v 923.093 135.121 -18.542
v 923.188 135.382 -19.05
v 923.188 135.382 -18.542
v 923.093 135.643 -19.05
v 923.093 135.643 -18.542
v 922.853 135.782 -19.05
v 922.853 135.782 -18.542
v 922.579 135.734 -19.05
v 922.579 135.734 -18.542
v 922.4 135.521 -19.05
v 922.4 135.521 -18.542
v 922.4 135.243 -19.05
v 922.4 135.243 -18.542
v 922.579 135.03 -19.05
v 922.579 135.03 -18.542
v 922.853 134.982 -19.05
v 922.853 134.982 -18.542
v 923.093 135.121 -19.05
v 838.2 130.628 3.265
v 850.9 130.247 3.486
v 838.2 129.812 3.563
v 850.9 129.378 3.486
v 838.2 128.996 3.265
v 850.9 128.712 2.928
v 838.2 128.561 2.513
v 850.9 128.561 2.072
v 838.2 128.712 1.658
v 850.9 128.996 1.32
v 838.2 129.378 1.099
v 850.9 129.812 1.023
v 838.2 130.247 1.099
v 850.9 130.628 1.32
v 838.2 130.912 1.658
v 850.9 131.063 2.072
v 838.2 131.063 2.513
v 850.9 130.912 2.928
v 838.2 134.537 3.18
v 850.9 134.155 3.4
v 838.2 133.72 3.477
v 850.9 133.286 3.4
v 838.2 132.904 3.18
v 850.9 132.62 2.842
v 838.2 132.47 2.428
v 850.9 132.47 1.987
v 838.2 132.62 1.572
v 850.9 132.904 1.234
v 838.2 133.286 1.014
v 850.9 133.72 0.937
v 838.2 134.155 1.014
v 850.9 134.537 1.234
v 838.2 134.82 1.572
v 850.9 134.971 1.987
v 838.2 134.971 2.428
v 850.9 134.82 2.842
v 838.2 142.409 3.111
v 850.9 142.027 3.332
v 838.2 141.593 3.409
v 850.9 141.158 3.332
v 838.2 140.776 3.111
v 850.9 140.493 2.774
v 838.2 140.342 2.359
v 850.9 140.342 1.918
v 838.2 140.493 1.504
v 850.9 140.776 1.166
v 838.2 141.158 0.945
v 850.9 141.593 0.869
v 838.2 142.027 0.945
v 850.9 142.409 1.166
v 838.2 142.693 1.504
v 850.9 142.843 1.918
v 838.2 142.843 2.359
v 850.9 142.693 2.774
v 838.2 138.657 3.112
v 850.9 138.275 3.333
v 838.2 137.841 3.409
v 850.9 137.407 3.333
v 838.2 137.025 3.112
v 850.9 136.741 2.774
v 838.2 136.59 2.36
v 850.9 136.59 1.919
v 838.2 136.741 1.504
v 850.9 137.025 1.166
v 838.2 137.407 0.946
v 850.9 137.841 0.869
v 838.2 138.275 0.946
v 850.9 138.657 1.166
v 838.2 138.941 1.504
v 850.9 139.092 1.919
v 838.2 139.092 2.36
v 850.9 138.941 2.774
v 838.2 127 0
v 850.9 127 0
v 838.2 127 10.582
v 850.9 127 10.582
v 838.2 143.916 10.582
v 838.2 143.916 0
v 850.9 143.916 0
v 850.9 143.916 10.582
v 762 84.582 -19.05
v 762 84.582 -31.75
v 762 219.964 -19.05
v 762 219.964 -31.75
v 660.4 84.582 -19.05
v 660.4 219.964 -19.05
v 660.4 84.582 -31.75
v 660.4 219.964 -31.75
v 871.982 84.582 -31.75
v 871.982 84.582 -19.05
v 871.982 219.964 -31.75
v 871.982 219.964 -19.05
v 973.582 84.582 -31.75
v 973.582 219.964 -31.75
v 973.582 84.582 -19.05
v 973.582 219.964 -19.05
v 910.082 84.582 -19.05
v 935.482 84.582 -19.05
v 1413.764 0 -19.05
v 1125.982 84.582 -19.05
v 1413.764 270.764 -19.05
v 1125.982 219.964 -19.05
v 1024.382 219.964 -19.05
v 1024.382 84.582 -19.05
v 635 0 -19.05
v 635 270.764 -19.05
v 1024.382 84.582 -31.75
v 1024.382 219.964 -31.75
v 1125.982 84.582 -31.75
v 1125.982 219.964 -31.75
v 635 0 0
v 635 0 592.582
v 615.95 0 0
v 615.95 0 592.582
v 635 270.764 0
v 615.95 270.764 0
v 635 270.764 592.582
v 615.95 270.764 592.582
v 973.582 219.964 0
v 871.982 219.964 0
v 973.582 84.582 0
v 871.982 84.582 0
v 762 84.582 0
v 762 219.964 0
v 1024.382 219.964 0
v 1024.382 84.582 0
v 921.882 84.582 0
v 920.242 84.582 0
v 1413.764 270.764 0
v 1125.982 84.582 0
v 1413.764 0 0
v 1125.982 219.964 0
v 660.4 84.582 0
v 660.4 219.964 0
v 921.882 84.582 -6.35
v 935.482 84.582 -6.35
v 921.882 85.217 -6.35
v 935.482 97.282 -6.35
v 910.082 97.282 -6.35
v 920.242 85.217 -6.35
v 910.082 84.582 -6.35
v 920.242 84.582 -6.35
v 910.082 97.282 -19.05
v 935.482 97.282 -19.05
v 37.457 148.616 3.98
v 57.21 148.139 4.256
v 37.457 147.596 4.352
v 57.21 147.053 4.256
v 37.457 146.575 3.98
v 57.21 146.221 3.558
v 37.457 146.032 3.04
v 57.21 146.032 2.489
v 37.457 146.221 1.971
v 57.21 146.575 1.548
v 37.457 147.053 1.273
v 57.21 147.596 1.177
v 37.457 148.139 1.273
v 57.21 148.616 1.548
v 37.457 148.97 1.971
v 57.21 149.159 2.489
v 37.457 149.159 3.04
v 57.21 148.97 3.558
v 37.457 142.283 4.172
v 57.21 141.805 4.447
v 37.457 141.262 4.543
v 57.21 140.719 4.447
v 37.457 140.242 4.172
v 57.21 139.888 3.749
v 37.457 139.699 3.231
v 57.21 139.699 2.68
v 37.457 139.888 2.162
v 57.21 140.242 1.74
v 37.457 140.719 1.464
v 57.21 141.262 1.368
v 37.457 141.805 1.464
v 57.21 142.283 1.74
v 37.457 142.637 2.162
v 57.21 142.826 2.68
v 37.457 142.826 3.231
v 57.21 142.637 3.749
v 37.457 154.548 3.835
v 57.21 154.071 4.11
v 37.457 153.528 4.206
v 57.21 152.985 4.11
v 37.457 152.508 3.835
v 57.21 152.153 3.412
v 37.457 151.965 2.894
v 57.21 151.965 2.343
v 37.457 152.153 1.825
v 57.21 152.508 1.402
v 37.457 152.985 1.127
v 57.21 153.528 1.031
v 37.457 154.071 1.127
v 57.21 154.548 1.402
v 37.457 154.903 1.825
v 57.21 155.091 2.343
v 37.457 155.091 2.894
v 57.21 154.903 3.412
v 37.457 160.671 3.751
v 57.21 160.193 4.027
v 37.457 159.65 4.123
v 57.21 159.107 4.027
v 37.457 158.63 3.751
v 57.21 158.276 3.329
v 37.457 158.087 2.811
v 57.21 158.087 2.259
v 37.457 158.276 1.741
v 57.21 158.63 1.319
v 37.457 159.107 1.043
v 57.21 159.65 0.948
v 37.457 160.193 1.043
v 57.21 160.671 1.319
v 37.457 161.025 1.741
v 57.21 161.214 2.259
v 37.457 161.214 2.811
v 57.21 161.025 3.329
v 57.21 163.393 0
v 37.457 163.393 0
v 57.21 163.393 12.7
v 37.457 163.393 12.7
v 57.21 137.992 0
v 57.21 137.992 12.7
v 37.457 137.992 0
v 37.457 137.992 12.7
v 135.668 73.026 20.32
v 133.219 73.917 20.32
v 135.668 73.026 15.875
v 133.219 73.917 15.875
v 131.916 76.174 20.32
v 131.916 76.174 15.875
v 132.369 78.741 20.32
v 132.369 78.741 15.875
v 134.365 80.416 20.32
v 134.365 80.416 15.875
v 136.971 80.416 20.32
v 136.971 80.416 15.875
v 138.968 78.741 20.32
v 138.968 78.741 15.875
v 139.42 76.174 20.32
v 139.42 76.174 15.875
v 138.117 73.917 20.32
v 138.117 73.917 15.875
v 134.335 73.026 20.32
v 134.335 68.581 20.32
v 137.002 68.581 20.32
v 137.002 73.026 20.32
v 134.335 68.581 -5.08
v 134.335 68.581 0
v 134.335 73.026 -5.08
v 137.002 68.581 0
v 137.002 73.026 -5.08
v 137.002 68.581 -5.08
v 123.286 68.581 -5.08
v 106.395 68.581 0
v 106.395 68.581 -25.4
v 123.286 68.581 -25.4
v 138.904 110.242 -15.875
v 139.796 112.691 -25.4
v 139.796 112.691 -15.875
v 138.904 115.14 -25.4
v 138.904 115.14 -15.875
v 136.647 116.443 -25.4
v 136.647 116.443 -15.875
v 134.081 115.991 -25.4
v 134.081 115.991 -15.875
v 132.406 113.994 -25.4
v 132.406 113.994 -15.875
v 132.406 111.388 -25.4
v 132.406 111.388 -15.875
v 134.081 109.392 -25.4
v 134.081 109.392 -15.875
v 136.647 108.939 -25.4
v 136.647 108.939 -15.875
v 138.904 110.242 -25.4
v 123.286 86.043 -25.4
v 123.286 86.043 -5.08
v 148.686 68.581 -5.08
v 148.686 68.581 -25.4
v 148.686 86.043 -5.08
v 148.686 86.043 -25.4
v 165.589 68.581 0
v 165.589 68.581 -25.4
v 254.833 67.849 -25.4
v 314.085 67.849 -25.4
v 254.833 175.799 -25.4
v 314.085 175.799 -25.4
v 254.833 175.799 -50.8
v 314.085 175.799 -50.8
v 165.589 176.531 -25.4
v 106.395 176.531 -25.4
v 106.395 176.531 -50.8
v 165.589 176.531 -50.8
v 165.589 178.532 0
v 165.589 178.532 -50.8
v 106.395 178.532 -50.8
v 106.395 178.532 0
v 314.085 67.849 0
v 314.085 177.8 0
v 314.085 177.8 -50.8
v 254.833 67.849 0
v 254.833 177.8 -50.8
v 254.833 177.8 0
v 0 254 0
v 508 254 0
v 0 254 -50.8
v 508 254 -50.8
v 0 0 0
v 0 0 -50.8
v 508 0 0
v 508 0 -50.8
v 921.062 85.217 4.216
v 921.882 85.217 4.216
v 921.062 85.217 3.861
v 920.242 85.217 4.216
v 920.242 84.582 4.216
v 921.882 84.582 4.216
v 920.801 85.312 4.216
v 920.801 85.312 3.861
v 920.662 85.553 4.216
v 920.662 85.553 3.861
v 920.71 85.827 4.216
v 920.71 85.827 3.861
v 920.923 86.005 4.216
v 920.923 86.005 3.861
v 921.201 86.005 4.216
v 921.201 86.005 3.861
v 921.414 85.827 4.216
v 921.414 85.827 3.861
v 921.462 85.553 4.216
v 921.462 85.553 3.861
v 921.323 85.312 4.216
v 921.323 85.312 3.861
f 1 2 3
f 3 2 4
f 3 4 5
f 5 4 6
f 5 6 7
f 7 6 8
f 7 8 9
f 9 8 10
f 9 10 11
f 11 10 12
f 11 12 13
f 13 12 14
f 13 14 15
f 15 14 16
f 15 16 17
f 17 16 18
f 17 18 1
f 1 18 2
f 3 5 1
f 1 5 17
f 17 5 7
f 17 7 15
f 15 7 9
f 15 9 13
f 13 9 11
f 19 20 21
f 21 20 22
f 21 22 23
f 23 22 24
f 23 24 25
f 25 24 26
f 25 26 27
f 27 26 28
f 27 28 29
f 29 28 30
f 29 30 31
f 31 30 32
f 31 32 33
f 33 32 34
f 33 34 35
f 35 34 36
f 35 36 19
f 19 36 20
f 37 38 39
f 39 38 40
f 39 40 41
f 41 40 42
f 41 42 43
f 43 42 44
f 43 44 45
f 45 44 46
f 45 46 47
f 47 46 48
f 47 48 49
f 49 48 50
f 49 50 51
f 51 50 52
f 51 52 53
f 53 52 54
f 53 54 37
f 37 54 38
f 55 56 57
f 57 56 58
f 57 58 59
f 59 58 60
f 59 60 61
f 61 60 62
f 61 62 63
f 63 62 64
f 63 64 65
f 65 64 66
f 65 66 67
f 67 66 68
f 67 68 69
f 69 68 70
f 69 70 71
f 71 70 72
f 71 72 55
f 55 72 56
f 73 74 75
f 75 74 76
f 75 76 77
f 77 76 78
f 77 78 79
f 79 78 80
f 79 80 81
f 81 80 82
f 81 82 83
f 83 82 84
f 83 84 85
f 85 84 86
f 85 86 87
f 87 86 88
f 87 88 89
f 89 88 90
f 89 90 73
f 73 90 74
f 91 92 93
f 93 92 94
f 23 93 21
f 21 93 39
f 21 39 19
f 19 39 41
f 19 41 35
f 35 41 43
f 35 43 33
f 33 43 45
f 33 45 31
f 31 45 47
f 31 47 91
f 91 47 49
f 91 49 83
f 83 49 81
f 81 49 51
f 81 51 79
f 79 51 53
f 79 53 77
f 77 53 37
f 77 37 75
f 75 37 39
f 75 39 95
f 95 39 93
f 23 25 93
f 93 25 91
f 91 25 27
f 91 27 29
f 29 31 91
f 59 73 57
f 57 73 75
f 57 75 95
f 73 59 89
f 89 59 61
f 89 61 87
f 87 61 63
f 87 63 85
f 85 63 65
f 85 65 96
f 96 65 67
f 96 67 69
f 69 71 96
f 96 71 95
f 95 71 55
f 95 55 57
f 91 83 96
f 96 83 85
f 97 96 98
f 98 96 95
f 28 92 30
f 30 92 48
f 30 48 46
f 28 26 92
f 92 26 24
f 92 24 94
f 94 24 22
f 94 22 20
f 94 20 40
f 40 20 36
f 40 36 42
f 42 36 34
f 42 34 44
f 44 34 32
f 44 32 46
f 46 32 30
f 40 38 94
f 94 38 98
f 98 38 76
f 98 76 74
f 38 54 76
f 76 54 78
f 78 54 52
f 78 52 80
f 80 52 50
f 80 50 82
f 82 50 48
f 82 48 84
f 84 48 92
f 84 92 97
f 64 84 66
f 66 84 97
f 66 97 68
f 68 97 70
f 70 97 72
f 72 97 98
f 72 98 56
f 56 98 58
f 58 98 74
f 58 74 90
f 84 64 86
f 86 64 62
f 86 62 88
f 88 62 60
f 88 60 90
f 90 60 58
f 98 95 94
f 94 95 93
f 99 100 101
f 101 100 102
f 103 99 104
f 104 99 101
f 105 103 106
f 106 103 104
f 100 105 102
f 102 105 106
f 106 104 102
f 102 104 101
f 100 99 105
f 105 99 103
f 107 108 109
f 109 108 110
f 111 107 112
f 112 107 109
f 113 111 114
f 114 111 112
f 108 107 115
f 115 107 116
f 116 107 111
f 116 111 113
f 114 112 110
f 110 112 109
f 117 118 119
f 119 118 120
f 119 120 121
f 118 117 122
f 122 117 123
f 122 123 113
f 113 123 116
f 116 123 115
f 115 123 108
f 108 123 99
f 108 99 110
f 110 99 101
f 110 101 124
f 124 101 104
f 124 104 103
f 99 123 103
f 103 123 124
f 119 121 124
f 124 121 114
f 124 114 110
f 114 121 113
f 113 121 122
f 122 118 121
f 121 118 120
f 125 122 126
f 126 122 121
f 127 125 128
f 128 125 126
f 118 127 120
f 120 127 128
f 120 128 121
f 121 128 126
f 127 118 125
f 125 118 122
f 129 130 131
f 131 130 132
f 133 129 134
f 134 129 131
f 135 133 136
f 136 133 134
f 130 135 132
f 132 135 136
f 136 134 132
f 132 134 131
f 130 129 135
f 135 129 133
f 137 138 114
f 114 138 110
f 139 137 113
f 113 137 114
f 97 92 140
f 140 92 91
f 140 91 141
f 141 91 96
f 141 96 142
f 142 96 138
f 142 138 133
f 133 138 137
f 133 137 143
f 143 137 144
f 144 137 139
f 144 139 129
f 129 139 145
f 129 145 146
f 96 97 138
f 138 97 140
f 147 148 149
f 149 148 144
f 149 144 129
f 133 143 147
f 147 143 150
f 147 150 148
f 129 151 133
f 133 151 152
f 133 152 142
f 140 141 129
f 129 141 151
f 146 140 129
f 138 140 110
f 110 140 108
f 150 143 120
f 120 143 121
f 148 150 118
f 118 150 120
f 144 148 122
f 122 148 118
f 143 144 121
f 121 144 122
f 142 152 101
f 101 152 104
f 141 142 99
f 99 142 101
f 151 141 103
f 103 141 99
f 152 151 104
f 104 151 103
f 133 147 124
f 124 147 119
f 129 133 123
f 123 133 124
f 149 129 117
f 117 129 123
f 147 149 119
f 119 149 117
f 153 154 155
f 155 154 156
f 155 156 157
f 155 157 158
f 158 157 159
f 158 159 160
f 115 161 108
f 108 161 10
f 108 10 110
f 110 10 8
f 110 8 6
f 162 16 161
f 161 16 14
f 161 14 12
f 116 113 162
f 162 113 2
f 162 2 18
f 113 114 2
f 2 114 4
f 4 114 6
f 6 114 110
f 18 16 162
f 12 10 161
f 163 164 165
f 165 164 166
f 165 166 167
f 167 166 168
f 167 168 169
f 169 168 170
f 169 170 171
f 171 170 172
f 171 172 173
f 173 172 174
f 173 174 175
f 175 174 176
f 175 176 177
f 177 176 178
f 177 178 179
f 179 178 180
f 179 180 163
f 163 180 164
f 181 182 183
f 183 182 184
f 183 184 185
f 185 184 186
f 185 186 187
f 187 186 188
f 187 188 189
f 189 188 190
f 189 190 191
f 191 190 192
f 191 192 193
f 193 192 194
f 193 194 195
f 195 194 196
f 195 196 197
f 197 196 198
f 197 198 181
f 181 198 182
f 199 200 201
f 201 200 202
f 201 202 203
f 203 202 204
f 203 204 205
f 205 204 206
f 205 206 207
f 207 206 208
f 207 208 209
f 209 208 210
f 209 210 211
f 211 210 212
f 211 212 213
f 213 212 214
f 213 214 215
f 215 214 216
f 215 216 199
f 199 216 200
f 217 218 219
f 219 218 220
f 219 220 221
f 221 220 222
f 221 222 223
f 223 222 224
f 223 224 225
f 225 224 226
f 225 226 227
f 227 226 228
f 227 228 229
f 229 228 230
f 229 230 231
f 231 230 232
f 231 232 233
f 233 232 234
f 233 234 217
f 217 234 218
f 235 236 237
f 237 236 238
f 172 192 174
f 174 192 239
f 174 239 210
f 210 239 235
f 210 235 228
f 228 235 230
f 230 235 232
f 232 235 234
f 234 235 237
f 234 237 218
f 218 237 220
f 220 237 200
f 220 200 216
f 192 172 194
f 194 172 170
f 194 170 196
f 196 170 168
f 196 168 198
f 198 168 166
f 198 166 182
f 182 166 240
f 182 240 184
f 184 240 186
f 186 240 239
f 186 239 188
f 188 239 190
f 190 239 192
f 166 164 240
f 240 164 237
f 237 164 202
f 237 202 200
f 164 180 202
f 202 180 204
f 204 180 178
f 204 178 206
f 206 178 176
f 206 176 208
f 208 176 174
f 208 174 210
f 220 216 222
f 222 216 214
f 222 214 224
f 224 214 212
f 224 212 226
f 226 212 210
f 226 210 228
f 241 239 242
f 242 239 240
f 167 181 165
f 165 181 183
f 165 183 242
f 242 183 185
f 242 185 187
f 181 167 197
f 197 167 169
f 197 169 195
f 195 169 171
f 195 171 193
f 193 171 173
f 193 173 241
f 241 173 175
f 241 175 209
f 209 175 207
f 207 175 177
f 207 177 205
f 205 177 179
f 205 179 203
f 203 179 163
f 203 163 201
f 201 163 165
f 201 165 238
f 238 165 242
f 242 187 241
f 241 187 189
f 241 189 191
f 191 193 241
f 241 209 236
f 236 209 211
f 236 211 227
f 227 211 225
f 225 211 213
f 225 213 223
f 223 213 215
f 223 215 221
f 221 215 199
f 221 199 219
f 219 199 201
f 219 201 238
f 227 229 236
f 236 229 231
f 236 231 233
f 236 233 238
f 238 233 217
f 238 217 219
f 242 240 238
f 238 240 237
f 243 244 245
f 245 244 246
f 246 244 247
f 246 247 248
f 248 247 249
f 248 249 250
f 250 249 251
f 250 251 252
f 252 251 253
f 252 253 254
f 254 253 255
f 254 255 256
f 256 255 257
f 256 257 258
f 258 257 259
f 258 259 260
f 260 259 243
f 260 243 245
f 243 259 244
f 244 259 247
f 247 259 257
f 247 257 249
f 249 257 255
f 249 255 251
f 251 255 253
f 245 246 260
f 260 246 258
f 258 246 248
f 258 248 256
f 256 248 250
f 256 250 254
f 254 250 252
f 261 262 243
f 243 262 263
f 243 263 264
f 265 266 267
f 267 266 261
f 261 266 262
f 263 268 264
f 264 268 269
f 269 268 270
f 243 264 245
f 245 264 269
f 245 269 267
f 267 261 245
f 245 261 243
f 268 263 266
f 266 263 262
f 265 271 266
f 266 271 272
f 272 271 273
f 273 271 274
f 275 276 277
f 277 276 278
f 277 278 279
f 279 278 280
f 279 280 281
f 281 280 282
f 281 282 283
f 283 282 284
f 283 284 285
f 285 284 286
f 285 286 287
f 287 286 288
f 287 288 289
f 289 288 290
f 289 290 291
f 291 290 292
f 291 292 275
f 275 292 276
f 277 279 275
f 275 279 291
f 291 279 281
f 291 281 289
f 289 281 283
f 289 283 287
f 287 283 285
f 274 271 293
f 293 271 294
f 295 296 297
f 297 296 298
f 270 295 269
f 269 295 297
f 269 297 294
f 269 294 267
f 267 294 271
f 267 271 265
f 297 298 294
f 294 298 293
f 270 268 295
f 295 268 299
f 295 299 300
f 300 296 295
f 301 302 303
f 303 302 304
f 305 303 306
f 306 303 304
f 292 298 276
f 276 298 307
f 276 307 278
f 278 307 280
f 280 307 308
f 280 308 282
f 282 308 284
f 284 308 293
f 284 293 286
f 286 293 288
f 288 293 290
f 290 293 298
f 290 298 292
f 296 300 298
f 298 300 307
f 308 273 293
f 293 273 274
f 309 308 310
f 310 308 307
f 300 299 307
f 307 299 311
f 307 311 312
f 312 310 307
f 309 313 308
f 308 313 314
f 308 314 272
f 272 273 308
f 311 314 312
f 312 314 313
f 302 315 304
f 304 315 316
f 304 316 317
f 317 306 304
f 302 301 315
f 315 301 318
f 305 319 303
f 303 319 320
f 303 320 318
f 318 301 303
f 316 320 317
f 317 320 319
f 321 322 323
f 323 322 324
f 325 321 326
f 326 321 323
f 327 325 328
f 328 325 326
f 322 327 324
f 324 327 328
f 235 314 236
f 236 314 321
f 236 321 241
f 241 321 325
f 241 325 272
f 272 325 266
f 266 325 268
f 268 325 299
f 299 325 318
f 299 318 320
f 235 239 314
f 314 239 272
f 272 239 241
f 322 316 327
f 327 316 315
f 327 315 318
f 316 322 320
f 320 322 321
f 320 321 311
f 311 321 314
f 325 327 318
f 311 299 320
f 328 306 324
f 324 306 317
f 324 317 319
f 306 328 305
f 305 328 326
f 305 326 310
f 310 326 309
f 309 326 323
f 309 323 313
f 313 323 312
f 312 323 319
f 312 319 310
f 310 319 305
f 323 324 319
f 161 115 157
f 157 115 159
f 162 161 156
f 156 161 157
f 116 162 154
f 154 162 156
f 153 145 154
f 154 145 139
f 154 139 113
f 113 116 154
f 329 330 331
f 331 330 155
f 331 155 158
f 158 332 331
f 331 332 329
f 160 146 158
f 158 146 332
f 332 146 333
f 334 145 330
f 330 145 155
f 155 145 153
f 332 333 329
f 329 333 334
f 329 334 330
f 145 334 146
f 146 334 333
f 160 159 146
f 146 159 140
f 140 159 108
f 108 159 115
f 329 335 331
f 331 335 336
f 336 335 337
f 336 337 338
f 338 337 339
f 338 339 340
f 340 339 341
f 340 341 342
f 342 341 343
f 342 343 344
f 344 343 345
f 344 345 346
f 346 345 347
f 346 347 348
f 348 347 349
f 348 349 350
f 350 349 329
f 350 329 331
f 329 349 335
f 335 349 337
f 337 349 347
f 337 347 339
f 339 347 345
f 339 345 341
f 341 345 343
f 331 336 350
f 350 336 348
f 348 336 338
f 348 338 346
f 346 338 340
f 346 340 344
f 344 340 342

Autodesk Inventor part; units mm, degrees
ref_plane "YZ Plane" through (0, 0, 0) normal (1, 0, 0) x (0, 1, 0)
ref_plane "XZ Plane" through (0, 0, 0) normal (0, 1, 0) x (-1, 0, 0)
ref_plane "XY Plane" through (0, 0, 0) normal (0, 0, 1) x (1, 0, 0)
sketch "Sketch5" plane through (0, 0, 0) normal (0, 0, 1) x (1, 0, 0)
  line L0 (0, 0) -> (508, 0)
  line L1 (508, 0) -> (508, 254)
  line L2 (508, 254) -> (0, 254)
  line L3 (0, 254) -> (0, 0)
  line L4 (106.3948, 178.5315) -> (165.5889, 178.5315)
  line L5 (165.5889, 178.5315) -> (165.5889, 68.5809)
  line L6 (165.5889, 68.5809) -> (106.3948, 68.5809)
  line L7 (106.3948, 68.5809) -> (106.3948, 178.5315)
  line L8 (254.8332, 177.8) -> (314.0855, 177.8)
  line L9 (314.0855, 177.8) -> (314.0855, 67.8493)
  line L10 (314.0855, 67.8493) -> (254.8332, 67.8493)
  line L11 (254.8332, 67.8493) -> (254.8332, 177.8)
  dimension "d14" = 508
  dimension "d15" = 254
extrude "Extrusion4" add sketch "Sketch5" against normal blind 50.8
sketch "Sketch8" plane through (106.3948, 68.5809, 0) normal (0, 1, 0) x (1, 0, 0)
  line L0 (0, 0) -> (0, 50.8) projected
  line L1 (0, 25.4) -> (59.1942, 25.4)
  line L2 (59.1942, 25.4) -> (59.1942, 50.8)
  line L3 (59.1942, 50.8) -> (0, 50.8)
  line L4 (0, 50.8) -> (0, 25.4)
  point P0 (-106.3948, 0)
extrude "Extrusion6" add sketch "Sketch8" along normal blind 107.95
sketch "Sketch9" plane through (254.8332, 67.8493, 0) normal (0, 1, 0) x (1, 0, 0)
  line L0 (0, 0) -> (0, 50.8) projected
  line L1 (0, 25.4) -> (59.2523, 25.4)
  line L2 (59.2523, 25.4) -> (59.2523, 50.8)
  line L3 (59.2523, 50.8) -> (0, 50.8)
  line L4 (0, 50.8) -> (0, 25.4)
  point P0 (-254.8332, 0)
extrude "Extrusion7" add sketch "Sketch9" along normal blind 107.95
sketch "Sketch10" plane through (106.3948, 68.5809, 0) normal (0, 1, 0) x (1, 0, 0)
  line L0 (16.891, 25.4) -> (42.291, 25.4)
  line L1 (42.291, 25.4) -> (42.291, 5.08)
  line L2 (42.291, 5.08) -> (16.891, 5.08)
  line L3 (16.891, 5.08) -> (16.891, 25.4)
  point P0 (-106.3948, 0)
  dimension "d35" = 25.4
  dimension "d36" = 20.32
extrude "Extrusion8" add sketch "Sketch10" along normal blind 17.4625
sketch "Sketch11" plane through (106.3948, 176.5309, -25.4) normal (0, 0, 1) x (1, 0, 0)
  circle A0 centre (29.591, -63.8397) radius 3.81
  point P0 (-106.3948, -176.5309)
  dimension "d40" = 7.62
extrude "Extrusion9" add sketch "Sketch11" along normal blind 9.525
sketch "Sketch12" plane through (106.3948, 68.5809, 0) normal (0, 1, 0) x (1, 0, 0)
  line L0 (42.291, 5.08) -> (16.891, 5.08) projected
  line L1 (27.94, 5.08) -> (30.607, 5.08)
  line L2 (30.607, 5.08) -> (30.607, -20.32)
  line L3 (30.607, -20.32) -> (27.94, -20.32)
  line L4 (27.94, -20.32) -> (27.94, 5.08)
  point P0 (-106.3948, 0)
  dimension "d43" = 2.667
  dimension "d44" = 25.4
extrude "Extrusion10" add sketch "Sketch12" along normal blind 4.445
sketch "Sketch13" plane through (134.3348, 68.5809, 20.32) normal (0, 0, 1) x (1, 0, 0)
  circle A0 centre (1.3335, 8.255) radius 3.81
  point P0 (-134.3348, -68.5809)
  dimension "d47" = 7.62
extrude "Extrusion11" add sketch "Sketch13" against normal blind 4.445
sketch "Sketch16" plane through (106.3948, 176.5309, -25.4) normal (0, 0, 1) x (1, 0, 0)
  line L0 (14.3059, -54.6716) -> (46.9521, -54.6716) construction
  line L1 (46.9521, -54.6716) -> (46.9521, -58.6978) construction
  line L2 (46.9521, -58.6978) -> (14.3059, -58.6978) construction
  line L3 (14.3059, -58.6978) -> (14.3059, -54.6716) construction
  point P0 (-106.3948, -176.5309)
sketch "Sketch17" plane through (106.3948, 176.5309, -25.4) normal (0, 0, 1) x (1, 0, 0)
  line L0 (15.7059, -85.8021) -> (44.6397, -85.8021) construction
  line L1 (44.6397, -85.8021) -> (44.6397, -89.8282) construction
  line L2 (44.6397, -89.8282) -> (15.7059, -89.8282) construction
  line L3 (15.7059, -89.8282) -> (15.7059, -85.8021) construction
  point P0 (-106.3948, -176.5309)
sketch "Sketch18" plane through (135.6683, 76.8359, 20.32) normal (0, 0, 1) x (1, 0, 0)
  line L0 (-19.3162, -9.5529) -> (36.6939, -9.5529) construction
  line L1 (36.6939, -9.5529) -> (36.6939, -13.579) construction
  line L2 (36.6939, -13.579) -> (-19.3162, -13.579) construction
  line L3 (-19.3162, -13.579) -> (-19.3162, -9.5529) construction
  point P0 (-135.6683, -76.8359)
sketch "Sketch19" plane through (0, 0, 0) normal (0, 0, 1) x (1, 0, 0)
  line L0 (106.3948, 68.5809) -> (106.3948, 176.5309) projected
  arc A0 (56.654, 159.4739) -> (106.3948, 159.8999) centre (80.9132, 231.0621) ccw
  point P0 (0, 0)
sketch "Sketch21" plane through (106.3948, 68.5809, 0) normal (1, 0, 0) x (0, 0, -1)
  line L0 (0, 0) -> (0, 109.9507) projected
  line L1 (25.4, 0) -> (25.4, 107.95) projected
  arc A0 (0, 91.1415) -> (25.4, 43.4398) centre (113.4917, 120.9598) ccw
  point P0 (0, -68.5809)
sketch "Sketch22" plane through (106.3948, 176.5309, -25.4) normal (0, 0, 1) x (1, 0, 0)
  line L0 (0, -107.95) -> (0, 0) projected
  circle A0 centre (29.591, -63.8397) radius 3.81 projected
  arc A1 (0, -65.62) -> (25.781, -63.8397) centre (10.1339, -24.8109) ccw
  point P0 (-106.3948, -176.5309)
sketch "Sketch24" plane through (0, 0, 0) normal (0, 0, 1) x (1, 0, 0)
  line L0 (63.5, 165.1) -> (63.5, 127) projected
  arc A0 (63.5, 150.7683) -> (106.3948, 144.9276) centre (98.4452, 246.9769) ccw
  point P0 (0, 0)
sketch "Sketch25" plane through (106.3948, 68.5809, 0) normal (1, 0, 0) x (0, 0, -1)
  line L0 (0, 0) -> (25.4, 0) projected
  arc A0 (0, 75.9575) -> (20.5025, 0) centre (471.8024, 162.5611) ccw
  point P0 (0, -68.5809)
sketch "Sketch26" plane through (106.3948, 68.5809, 0) normal (0, 1, 0) x (1, 0, 0)
  line L0 (0, 0) -> (0, 25.4) projected
  line L1 (16.891, 5.08) -> (16.891, 25.4) projected
  arc A0 (0, 20.7585) -> (16.891, 14.7493) centre (10.6546, 23.9633) ccw
  point P0 (-106.3948, 0)
sketch "Sketch28" plane through (0, 0, 0) normal (0, 0, 1) x (1, 0, 0)
  line L0 (134.3348, 68.5809) -> (106.3948, 68.5809) projected
  line L1 (137.0018, 68.5809) -> (134.3348, 68.5809) projected
  arc A0 (131.2385, 68.5809) -> (134.3348, 68.5809) centre (132.7866, 73.5411) ccw
  arc A1 (35.3873, 159.2878) -> (131.2385, 65.871) centre (111.28, 141.2753) ccw
  line L2 (106.3948, 68.5809) -> (106.3948, 178.5315) projected
  arc A2 (56.8389, 152.8761) -> (106.3948, 144.0937) centre (94.7313, 222.4849) ccw
  point P0 (0, 0)
sketch "Sketch30" plane through (0, 0, 0) normal (0, 0, 1) x (1, 0, 0)
  line L0 (64.7632, 170.4894) -> (105.7037, 170.4894) construction
  line L1 (105.7037, 170.4894) -> (105.7037, 161.4449) construction
  line L2 (105.7037, 161.4449) -> (64.7632, 161.4449) construction
  line L3 (64.7632, 161.4449) -> (64.7632, 170.4894) construction
  line L4 (60.3339, 142.2504) -> (104.8125, 142.2504) construction
  line L5 (104.8125, 142.2504) -> (104.8125, 133.2058) construction
  line L6 (104.8125, 133.2058) -> (60.3339, 133.2058) construction
  line L7 (60.3339, 133.2058) -> (60.3339, 142.2504) construction
  line L8 (53.7063, 100.1518) -> (93.849, 100.1518) construction
  line L9 (93.849, 100.1518) -> (93.849, 90.0633) construction
  line L10 (93.849, 90.0633) -> (53.7063, 90.0633) construction
  line L11 (53.7063, 90.0633) -> (53.7063, 100.1518) construction
  point P0 (0, 0)
sketch "Sketch32" plane through (0, 0, 0) normal (0, 0, 1) x (1, 0, 0)
  line L0 (57.2103, 163.3925) -> (37.4567, 163.3925)
  line L1 (37.4567, 163.3925) -> (37.4567, 137.9925)
  line L2 (37.4567, 137.9925) -> (57.2103, 137.9925)
  line L3 (57.2103, 137.9925) -> (57.2103, 163.3925)
  point P0 (0, 0)
  dimension "d51" = 19.7536
  dimension "d52" = 25.4
extrude "Extrusion12" add sketch "Sketch32" along normal blind 12.7
sketch "Sketch33" plane through (0, 0, 12.7) normal (0, 0, 1) x (1, 0, 0)
  line L0 (37.7328, 161.9101) -> (67.7929, 161.9101) construction
  line L1 (67.7929, 161.9101) -> (67.7929, 152.5818) construction
  line L2 (67.7929, 152.5818) -> (37.7328, 152.5818) construction
  line L3 (37.7328, 152.5818) -> (37.7328, 161.9101) construction
  point P0 (0, 0)
sketch "Sketch34" plane through (57.2103, 137.9925, 0) normal (1, 0, 0) x (0, 0, -1)
  point P0 (0, -137.9925)
  point P1 (-2.5352, 21.6579)
  point P2 (-2.6184, 15.5355)
  point P3 (-2.7643, 9.6031)
  point P4 (-2.9557, 3.2698)
hole "Hole2" at (57.2103, 159.6504, 2.5352) at (57.2103, 153.528, 2.6184) at (57.2103, 141.2623, 2.9557) at (57.2103, 147.5956, 2.7643) direction (-1, 0, 0) diameter 3.175 depth 131.445 tip angle 126
sketch "Sketch35" plane through (0, 0, 0) normal (0, -1, 0) x (1, 0, 0)
  point P0 (0, 0)
sketch "Sketch36" plane through (0, 0, 0) normal (0, 0, 1) x (1, 0, 0)
  line L0 (635, 0) -> (1413.764, 0)
  line L1 (1413.764, 0) -> (1413.764, 270.764)
  line L2 (1413.764, 270.764) -> (635, 270.764)
  line L3 (635, 270.764) -> (635, 0)
  line L4 (871.982, 84.582) -> (973.582, 84.582)
  line L5 (973.582, 84.582) -> (973.582, 219.964)
  line L6 (973.582, 219.964) -> (871.982, 219.964)
  line L7 (871.982, 219.964) -> (871.982, 84.582)
  line L8 (1024.382, 84.582) -> (1125.982, 84.582)
  line L9 (1125.982, 84.582) -> (1125.982, 219.964)
  line L10 (1125.982, 219.964) -> (1024.382, 219.964)
  line L11 (1024.382, 219.964) -> (1024.382, 84.582)
  line L12 (660.4, 84.582) -> (762, 84.582)
  line L13 (762, 84.582) -> (762, 219.964)
  line L14 (762, 219.964) -> (660.4, 219.964)
  line L15 (660.4, 219.964) -> (660.4, 84.582)
  point P0 (0, 0)
  dimension "d62" = 778.764
  dimension "d63" = 270.764
  dimension "d64" = 101.6
  dimension "d65" = 135.382
  dimension "d66" = 101.6
  dimension "d67" = 135.382
  dimension "d68" = 101.6
  dimension "d69" = 135.382
extrude "Extrusion13" add sketch "Sketch36" against normal blind 19.05
sketch "Sketch37" plane through (635, 0, 0) normal (-1, 0, 0) x (0, 0, 1)
  point P0 (0, 0)
sketch "Sketch38" plane through (635, 0, 0) normal (-1, 0, 0) x (0, 0, 1)
  line L0 (0, 0) -> (-19.05, 0) projected
  line L1 (0, 0) -> (592.582, 0)
  line L2 (592.582, 0) -> (592.582, 270.764)
  line L3 (592.582, 270.764) -> (0, 270.764)
  line L4 (0, 270.764) -> (0, 0)
  dimension "d72" = 592.582
  dimension "d73" = 270.764
extrude "Extrusion14" add sketch "Sketch38" along normal blind 19.05
sketch "Sketch39" plane through (871.982, 84.582, 0) normal (0, 1, 0) x (1, 0, 0)
  line L0 (0, 19.05) -> (101.6, 19.05) projected
  line L1 (0, 19.05) -> (101.6, 19.05)
  line L2 (101.6, 19.05) -> (101.6, 31.75)
  line L3 (101.6, 31.75) -> (0, 31.75)
  line L4 (0, 31.75) -> (0, 19.05)
  line L5 (152.4, 19.05) -> (254, 19.05)
  line L6 (254, 19.05) -> (254, 31.75)
  line L7 (254, 31.75) -> (152.4, 31.75)
  line L8 (152.4, 31.75) -> (152.4, 19.05)
  line L9 (-211.582, 0) -> (-211.582, 19.05) projected
  line L10 (-211.582, 19.05) -> (-109.982, 19.05)
  line L11 (-109.982, 19.05) -> (-109.982, 31.75)
  line L12 (-109.982, 31.75) -> (-211.582, 31.75)
  line L13 (-211.582, 31.75) -> (-211.582, 19.05)
  point P0 (-871.982, 0)
  dimension "d76" = 101.6
  dimension "d77" = 12.7
  dimension "d78" = 101.6
  dimension "d79" = 12.7
  dimension "d80" = 101.6
  dimension "d81" = 12.7
extrude "Extrusion15" add sketch "Sketch39" along normal blind 135.382
sketch "Sketch40" plane through (0, 0, 0) normal (0, 0, 1) x (1, 0, 0)
  line L0 (838.2, 127) -> (850.9, 127)
  line L1 (850.9, 127) -> (850.9, 143.9164)
  line L2 (850.9, 143.9164) -> (838.2, 143.9164)
  line L3 (838.2, 143.9164) -> (838.2, 127)
  point P0 (0, 0)
  dimension "d84" = 12.7
  dimension "d85" = 16.9164
extrude "Extrusion16" add sketch "Sketch40" along normal blind 10.5816
sketch "Sketch41" plane through (850.9, 127, 0) normal (1, 0, 0) x (0, 0, -1)
  point P0 (0, -127)
  point P1 (-2.1386, 14.5927)
  point P2 (-2.1394, 10.841)
  point P3 (-2.207, 6.7203)
  point P4 (-2.2926, 2.8121)
hole "Hole3" at (850.9, 137.841, 2.1394) at (850.9, 141.5927, 2.1386) at (850.9, 133.7203, 2.207) at (850.9, 129.8121, 2.2926) direction (-1, 0, 0) diameter 2.54 depth 190.5
sketch "Sketch42" plane through (871.982, 84.582, -19.05) normal (0, 0, 1) x (1, 0, 0)
  circle A0 centre (50.8, 50.8) radius 0.4064
  point P0 (-871.982, -84.582)
  dimension "d95" = 0.8128
extrude "Extrusion17" add sketch "Sketch42" along normal blind 0.508
sketch "Sketch46" plane through (871.982, 84.582, -19.05) normal (0, 0, 1) x (1, 0, 0)
  line L0 (38.1, 0) -> (63.5, 0)
  line L1 (63.5, 0) -> (63.5, 12.7)
  line L2 (63.5, 12.7) -> (38.1, 12.7)
  line L3 (38.1, 12.7) -> (38.1, 0)
  point P0 (-871.982, -84.582)
  dimension "d98" = 25.4
  dimension "d99" = 12.7
extrude "Extrusion18" add sketch "Sketch46" along normal blind 12.7
sketch "Sketch47" plane through (871.982, 84.582, 0) normal (0, 1, 0) x (1, 0, 0)
  line L0 (63.5, 6.35) -> (38.1, 6.35) projected
  line L1 (48.26, 6.35) -> (49.8998, 6.35)
  line L2 (49.8998, 6.35) -> (49.8998, -4.2164)
  line L3 (49.8998, -4.2164) -> (48.26, -4.2164)
  line L4 (48.26, -4.2164) -> (48.26, 6.35)
  point P0 (-871.982, 0)
  dimension "d102" = 10.5664
extrude "Extrusion19" add sketch "Sketch47" along normal blind 0.635
sketch "Sketch48" plane through (920.242, 84.582, 4.2164) normal (0, 0, 1) x (1, 0, 0)
  circle A0 centre (0.8199, 1.0414) radius 0.4064
  point P0 (-920.242, -84.582)
extrude "Extrusion20" add sketch "Sketch48" against normal blind 0.3556
properties part number "Scene"
